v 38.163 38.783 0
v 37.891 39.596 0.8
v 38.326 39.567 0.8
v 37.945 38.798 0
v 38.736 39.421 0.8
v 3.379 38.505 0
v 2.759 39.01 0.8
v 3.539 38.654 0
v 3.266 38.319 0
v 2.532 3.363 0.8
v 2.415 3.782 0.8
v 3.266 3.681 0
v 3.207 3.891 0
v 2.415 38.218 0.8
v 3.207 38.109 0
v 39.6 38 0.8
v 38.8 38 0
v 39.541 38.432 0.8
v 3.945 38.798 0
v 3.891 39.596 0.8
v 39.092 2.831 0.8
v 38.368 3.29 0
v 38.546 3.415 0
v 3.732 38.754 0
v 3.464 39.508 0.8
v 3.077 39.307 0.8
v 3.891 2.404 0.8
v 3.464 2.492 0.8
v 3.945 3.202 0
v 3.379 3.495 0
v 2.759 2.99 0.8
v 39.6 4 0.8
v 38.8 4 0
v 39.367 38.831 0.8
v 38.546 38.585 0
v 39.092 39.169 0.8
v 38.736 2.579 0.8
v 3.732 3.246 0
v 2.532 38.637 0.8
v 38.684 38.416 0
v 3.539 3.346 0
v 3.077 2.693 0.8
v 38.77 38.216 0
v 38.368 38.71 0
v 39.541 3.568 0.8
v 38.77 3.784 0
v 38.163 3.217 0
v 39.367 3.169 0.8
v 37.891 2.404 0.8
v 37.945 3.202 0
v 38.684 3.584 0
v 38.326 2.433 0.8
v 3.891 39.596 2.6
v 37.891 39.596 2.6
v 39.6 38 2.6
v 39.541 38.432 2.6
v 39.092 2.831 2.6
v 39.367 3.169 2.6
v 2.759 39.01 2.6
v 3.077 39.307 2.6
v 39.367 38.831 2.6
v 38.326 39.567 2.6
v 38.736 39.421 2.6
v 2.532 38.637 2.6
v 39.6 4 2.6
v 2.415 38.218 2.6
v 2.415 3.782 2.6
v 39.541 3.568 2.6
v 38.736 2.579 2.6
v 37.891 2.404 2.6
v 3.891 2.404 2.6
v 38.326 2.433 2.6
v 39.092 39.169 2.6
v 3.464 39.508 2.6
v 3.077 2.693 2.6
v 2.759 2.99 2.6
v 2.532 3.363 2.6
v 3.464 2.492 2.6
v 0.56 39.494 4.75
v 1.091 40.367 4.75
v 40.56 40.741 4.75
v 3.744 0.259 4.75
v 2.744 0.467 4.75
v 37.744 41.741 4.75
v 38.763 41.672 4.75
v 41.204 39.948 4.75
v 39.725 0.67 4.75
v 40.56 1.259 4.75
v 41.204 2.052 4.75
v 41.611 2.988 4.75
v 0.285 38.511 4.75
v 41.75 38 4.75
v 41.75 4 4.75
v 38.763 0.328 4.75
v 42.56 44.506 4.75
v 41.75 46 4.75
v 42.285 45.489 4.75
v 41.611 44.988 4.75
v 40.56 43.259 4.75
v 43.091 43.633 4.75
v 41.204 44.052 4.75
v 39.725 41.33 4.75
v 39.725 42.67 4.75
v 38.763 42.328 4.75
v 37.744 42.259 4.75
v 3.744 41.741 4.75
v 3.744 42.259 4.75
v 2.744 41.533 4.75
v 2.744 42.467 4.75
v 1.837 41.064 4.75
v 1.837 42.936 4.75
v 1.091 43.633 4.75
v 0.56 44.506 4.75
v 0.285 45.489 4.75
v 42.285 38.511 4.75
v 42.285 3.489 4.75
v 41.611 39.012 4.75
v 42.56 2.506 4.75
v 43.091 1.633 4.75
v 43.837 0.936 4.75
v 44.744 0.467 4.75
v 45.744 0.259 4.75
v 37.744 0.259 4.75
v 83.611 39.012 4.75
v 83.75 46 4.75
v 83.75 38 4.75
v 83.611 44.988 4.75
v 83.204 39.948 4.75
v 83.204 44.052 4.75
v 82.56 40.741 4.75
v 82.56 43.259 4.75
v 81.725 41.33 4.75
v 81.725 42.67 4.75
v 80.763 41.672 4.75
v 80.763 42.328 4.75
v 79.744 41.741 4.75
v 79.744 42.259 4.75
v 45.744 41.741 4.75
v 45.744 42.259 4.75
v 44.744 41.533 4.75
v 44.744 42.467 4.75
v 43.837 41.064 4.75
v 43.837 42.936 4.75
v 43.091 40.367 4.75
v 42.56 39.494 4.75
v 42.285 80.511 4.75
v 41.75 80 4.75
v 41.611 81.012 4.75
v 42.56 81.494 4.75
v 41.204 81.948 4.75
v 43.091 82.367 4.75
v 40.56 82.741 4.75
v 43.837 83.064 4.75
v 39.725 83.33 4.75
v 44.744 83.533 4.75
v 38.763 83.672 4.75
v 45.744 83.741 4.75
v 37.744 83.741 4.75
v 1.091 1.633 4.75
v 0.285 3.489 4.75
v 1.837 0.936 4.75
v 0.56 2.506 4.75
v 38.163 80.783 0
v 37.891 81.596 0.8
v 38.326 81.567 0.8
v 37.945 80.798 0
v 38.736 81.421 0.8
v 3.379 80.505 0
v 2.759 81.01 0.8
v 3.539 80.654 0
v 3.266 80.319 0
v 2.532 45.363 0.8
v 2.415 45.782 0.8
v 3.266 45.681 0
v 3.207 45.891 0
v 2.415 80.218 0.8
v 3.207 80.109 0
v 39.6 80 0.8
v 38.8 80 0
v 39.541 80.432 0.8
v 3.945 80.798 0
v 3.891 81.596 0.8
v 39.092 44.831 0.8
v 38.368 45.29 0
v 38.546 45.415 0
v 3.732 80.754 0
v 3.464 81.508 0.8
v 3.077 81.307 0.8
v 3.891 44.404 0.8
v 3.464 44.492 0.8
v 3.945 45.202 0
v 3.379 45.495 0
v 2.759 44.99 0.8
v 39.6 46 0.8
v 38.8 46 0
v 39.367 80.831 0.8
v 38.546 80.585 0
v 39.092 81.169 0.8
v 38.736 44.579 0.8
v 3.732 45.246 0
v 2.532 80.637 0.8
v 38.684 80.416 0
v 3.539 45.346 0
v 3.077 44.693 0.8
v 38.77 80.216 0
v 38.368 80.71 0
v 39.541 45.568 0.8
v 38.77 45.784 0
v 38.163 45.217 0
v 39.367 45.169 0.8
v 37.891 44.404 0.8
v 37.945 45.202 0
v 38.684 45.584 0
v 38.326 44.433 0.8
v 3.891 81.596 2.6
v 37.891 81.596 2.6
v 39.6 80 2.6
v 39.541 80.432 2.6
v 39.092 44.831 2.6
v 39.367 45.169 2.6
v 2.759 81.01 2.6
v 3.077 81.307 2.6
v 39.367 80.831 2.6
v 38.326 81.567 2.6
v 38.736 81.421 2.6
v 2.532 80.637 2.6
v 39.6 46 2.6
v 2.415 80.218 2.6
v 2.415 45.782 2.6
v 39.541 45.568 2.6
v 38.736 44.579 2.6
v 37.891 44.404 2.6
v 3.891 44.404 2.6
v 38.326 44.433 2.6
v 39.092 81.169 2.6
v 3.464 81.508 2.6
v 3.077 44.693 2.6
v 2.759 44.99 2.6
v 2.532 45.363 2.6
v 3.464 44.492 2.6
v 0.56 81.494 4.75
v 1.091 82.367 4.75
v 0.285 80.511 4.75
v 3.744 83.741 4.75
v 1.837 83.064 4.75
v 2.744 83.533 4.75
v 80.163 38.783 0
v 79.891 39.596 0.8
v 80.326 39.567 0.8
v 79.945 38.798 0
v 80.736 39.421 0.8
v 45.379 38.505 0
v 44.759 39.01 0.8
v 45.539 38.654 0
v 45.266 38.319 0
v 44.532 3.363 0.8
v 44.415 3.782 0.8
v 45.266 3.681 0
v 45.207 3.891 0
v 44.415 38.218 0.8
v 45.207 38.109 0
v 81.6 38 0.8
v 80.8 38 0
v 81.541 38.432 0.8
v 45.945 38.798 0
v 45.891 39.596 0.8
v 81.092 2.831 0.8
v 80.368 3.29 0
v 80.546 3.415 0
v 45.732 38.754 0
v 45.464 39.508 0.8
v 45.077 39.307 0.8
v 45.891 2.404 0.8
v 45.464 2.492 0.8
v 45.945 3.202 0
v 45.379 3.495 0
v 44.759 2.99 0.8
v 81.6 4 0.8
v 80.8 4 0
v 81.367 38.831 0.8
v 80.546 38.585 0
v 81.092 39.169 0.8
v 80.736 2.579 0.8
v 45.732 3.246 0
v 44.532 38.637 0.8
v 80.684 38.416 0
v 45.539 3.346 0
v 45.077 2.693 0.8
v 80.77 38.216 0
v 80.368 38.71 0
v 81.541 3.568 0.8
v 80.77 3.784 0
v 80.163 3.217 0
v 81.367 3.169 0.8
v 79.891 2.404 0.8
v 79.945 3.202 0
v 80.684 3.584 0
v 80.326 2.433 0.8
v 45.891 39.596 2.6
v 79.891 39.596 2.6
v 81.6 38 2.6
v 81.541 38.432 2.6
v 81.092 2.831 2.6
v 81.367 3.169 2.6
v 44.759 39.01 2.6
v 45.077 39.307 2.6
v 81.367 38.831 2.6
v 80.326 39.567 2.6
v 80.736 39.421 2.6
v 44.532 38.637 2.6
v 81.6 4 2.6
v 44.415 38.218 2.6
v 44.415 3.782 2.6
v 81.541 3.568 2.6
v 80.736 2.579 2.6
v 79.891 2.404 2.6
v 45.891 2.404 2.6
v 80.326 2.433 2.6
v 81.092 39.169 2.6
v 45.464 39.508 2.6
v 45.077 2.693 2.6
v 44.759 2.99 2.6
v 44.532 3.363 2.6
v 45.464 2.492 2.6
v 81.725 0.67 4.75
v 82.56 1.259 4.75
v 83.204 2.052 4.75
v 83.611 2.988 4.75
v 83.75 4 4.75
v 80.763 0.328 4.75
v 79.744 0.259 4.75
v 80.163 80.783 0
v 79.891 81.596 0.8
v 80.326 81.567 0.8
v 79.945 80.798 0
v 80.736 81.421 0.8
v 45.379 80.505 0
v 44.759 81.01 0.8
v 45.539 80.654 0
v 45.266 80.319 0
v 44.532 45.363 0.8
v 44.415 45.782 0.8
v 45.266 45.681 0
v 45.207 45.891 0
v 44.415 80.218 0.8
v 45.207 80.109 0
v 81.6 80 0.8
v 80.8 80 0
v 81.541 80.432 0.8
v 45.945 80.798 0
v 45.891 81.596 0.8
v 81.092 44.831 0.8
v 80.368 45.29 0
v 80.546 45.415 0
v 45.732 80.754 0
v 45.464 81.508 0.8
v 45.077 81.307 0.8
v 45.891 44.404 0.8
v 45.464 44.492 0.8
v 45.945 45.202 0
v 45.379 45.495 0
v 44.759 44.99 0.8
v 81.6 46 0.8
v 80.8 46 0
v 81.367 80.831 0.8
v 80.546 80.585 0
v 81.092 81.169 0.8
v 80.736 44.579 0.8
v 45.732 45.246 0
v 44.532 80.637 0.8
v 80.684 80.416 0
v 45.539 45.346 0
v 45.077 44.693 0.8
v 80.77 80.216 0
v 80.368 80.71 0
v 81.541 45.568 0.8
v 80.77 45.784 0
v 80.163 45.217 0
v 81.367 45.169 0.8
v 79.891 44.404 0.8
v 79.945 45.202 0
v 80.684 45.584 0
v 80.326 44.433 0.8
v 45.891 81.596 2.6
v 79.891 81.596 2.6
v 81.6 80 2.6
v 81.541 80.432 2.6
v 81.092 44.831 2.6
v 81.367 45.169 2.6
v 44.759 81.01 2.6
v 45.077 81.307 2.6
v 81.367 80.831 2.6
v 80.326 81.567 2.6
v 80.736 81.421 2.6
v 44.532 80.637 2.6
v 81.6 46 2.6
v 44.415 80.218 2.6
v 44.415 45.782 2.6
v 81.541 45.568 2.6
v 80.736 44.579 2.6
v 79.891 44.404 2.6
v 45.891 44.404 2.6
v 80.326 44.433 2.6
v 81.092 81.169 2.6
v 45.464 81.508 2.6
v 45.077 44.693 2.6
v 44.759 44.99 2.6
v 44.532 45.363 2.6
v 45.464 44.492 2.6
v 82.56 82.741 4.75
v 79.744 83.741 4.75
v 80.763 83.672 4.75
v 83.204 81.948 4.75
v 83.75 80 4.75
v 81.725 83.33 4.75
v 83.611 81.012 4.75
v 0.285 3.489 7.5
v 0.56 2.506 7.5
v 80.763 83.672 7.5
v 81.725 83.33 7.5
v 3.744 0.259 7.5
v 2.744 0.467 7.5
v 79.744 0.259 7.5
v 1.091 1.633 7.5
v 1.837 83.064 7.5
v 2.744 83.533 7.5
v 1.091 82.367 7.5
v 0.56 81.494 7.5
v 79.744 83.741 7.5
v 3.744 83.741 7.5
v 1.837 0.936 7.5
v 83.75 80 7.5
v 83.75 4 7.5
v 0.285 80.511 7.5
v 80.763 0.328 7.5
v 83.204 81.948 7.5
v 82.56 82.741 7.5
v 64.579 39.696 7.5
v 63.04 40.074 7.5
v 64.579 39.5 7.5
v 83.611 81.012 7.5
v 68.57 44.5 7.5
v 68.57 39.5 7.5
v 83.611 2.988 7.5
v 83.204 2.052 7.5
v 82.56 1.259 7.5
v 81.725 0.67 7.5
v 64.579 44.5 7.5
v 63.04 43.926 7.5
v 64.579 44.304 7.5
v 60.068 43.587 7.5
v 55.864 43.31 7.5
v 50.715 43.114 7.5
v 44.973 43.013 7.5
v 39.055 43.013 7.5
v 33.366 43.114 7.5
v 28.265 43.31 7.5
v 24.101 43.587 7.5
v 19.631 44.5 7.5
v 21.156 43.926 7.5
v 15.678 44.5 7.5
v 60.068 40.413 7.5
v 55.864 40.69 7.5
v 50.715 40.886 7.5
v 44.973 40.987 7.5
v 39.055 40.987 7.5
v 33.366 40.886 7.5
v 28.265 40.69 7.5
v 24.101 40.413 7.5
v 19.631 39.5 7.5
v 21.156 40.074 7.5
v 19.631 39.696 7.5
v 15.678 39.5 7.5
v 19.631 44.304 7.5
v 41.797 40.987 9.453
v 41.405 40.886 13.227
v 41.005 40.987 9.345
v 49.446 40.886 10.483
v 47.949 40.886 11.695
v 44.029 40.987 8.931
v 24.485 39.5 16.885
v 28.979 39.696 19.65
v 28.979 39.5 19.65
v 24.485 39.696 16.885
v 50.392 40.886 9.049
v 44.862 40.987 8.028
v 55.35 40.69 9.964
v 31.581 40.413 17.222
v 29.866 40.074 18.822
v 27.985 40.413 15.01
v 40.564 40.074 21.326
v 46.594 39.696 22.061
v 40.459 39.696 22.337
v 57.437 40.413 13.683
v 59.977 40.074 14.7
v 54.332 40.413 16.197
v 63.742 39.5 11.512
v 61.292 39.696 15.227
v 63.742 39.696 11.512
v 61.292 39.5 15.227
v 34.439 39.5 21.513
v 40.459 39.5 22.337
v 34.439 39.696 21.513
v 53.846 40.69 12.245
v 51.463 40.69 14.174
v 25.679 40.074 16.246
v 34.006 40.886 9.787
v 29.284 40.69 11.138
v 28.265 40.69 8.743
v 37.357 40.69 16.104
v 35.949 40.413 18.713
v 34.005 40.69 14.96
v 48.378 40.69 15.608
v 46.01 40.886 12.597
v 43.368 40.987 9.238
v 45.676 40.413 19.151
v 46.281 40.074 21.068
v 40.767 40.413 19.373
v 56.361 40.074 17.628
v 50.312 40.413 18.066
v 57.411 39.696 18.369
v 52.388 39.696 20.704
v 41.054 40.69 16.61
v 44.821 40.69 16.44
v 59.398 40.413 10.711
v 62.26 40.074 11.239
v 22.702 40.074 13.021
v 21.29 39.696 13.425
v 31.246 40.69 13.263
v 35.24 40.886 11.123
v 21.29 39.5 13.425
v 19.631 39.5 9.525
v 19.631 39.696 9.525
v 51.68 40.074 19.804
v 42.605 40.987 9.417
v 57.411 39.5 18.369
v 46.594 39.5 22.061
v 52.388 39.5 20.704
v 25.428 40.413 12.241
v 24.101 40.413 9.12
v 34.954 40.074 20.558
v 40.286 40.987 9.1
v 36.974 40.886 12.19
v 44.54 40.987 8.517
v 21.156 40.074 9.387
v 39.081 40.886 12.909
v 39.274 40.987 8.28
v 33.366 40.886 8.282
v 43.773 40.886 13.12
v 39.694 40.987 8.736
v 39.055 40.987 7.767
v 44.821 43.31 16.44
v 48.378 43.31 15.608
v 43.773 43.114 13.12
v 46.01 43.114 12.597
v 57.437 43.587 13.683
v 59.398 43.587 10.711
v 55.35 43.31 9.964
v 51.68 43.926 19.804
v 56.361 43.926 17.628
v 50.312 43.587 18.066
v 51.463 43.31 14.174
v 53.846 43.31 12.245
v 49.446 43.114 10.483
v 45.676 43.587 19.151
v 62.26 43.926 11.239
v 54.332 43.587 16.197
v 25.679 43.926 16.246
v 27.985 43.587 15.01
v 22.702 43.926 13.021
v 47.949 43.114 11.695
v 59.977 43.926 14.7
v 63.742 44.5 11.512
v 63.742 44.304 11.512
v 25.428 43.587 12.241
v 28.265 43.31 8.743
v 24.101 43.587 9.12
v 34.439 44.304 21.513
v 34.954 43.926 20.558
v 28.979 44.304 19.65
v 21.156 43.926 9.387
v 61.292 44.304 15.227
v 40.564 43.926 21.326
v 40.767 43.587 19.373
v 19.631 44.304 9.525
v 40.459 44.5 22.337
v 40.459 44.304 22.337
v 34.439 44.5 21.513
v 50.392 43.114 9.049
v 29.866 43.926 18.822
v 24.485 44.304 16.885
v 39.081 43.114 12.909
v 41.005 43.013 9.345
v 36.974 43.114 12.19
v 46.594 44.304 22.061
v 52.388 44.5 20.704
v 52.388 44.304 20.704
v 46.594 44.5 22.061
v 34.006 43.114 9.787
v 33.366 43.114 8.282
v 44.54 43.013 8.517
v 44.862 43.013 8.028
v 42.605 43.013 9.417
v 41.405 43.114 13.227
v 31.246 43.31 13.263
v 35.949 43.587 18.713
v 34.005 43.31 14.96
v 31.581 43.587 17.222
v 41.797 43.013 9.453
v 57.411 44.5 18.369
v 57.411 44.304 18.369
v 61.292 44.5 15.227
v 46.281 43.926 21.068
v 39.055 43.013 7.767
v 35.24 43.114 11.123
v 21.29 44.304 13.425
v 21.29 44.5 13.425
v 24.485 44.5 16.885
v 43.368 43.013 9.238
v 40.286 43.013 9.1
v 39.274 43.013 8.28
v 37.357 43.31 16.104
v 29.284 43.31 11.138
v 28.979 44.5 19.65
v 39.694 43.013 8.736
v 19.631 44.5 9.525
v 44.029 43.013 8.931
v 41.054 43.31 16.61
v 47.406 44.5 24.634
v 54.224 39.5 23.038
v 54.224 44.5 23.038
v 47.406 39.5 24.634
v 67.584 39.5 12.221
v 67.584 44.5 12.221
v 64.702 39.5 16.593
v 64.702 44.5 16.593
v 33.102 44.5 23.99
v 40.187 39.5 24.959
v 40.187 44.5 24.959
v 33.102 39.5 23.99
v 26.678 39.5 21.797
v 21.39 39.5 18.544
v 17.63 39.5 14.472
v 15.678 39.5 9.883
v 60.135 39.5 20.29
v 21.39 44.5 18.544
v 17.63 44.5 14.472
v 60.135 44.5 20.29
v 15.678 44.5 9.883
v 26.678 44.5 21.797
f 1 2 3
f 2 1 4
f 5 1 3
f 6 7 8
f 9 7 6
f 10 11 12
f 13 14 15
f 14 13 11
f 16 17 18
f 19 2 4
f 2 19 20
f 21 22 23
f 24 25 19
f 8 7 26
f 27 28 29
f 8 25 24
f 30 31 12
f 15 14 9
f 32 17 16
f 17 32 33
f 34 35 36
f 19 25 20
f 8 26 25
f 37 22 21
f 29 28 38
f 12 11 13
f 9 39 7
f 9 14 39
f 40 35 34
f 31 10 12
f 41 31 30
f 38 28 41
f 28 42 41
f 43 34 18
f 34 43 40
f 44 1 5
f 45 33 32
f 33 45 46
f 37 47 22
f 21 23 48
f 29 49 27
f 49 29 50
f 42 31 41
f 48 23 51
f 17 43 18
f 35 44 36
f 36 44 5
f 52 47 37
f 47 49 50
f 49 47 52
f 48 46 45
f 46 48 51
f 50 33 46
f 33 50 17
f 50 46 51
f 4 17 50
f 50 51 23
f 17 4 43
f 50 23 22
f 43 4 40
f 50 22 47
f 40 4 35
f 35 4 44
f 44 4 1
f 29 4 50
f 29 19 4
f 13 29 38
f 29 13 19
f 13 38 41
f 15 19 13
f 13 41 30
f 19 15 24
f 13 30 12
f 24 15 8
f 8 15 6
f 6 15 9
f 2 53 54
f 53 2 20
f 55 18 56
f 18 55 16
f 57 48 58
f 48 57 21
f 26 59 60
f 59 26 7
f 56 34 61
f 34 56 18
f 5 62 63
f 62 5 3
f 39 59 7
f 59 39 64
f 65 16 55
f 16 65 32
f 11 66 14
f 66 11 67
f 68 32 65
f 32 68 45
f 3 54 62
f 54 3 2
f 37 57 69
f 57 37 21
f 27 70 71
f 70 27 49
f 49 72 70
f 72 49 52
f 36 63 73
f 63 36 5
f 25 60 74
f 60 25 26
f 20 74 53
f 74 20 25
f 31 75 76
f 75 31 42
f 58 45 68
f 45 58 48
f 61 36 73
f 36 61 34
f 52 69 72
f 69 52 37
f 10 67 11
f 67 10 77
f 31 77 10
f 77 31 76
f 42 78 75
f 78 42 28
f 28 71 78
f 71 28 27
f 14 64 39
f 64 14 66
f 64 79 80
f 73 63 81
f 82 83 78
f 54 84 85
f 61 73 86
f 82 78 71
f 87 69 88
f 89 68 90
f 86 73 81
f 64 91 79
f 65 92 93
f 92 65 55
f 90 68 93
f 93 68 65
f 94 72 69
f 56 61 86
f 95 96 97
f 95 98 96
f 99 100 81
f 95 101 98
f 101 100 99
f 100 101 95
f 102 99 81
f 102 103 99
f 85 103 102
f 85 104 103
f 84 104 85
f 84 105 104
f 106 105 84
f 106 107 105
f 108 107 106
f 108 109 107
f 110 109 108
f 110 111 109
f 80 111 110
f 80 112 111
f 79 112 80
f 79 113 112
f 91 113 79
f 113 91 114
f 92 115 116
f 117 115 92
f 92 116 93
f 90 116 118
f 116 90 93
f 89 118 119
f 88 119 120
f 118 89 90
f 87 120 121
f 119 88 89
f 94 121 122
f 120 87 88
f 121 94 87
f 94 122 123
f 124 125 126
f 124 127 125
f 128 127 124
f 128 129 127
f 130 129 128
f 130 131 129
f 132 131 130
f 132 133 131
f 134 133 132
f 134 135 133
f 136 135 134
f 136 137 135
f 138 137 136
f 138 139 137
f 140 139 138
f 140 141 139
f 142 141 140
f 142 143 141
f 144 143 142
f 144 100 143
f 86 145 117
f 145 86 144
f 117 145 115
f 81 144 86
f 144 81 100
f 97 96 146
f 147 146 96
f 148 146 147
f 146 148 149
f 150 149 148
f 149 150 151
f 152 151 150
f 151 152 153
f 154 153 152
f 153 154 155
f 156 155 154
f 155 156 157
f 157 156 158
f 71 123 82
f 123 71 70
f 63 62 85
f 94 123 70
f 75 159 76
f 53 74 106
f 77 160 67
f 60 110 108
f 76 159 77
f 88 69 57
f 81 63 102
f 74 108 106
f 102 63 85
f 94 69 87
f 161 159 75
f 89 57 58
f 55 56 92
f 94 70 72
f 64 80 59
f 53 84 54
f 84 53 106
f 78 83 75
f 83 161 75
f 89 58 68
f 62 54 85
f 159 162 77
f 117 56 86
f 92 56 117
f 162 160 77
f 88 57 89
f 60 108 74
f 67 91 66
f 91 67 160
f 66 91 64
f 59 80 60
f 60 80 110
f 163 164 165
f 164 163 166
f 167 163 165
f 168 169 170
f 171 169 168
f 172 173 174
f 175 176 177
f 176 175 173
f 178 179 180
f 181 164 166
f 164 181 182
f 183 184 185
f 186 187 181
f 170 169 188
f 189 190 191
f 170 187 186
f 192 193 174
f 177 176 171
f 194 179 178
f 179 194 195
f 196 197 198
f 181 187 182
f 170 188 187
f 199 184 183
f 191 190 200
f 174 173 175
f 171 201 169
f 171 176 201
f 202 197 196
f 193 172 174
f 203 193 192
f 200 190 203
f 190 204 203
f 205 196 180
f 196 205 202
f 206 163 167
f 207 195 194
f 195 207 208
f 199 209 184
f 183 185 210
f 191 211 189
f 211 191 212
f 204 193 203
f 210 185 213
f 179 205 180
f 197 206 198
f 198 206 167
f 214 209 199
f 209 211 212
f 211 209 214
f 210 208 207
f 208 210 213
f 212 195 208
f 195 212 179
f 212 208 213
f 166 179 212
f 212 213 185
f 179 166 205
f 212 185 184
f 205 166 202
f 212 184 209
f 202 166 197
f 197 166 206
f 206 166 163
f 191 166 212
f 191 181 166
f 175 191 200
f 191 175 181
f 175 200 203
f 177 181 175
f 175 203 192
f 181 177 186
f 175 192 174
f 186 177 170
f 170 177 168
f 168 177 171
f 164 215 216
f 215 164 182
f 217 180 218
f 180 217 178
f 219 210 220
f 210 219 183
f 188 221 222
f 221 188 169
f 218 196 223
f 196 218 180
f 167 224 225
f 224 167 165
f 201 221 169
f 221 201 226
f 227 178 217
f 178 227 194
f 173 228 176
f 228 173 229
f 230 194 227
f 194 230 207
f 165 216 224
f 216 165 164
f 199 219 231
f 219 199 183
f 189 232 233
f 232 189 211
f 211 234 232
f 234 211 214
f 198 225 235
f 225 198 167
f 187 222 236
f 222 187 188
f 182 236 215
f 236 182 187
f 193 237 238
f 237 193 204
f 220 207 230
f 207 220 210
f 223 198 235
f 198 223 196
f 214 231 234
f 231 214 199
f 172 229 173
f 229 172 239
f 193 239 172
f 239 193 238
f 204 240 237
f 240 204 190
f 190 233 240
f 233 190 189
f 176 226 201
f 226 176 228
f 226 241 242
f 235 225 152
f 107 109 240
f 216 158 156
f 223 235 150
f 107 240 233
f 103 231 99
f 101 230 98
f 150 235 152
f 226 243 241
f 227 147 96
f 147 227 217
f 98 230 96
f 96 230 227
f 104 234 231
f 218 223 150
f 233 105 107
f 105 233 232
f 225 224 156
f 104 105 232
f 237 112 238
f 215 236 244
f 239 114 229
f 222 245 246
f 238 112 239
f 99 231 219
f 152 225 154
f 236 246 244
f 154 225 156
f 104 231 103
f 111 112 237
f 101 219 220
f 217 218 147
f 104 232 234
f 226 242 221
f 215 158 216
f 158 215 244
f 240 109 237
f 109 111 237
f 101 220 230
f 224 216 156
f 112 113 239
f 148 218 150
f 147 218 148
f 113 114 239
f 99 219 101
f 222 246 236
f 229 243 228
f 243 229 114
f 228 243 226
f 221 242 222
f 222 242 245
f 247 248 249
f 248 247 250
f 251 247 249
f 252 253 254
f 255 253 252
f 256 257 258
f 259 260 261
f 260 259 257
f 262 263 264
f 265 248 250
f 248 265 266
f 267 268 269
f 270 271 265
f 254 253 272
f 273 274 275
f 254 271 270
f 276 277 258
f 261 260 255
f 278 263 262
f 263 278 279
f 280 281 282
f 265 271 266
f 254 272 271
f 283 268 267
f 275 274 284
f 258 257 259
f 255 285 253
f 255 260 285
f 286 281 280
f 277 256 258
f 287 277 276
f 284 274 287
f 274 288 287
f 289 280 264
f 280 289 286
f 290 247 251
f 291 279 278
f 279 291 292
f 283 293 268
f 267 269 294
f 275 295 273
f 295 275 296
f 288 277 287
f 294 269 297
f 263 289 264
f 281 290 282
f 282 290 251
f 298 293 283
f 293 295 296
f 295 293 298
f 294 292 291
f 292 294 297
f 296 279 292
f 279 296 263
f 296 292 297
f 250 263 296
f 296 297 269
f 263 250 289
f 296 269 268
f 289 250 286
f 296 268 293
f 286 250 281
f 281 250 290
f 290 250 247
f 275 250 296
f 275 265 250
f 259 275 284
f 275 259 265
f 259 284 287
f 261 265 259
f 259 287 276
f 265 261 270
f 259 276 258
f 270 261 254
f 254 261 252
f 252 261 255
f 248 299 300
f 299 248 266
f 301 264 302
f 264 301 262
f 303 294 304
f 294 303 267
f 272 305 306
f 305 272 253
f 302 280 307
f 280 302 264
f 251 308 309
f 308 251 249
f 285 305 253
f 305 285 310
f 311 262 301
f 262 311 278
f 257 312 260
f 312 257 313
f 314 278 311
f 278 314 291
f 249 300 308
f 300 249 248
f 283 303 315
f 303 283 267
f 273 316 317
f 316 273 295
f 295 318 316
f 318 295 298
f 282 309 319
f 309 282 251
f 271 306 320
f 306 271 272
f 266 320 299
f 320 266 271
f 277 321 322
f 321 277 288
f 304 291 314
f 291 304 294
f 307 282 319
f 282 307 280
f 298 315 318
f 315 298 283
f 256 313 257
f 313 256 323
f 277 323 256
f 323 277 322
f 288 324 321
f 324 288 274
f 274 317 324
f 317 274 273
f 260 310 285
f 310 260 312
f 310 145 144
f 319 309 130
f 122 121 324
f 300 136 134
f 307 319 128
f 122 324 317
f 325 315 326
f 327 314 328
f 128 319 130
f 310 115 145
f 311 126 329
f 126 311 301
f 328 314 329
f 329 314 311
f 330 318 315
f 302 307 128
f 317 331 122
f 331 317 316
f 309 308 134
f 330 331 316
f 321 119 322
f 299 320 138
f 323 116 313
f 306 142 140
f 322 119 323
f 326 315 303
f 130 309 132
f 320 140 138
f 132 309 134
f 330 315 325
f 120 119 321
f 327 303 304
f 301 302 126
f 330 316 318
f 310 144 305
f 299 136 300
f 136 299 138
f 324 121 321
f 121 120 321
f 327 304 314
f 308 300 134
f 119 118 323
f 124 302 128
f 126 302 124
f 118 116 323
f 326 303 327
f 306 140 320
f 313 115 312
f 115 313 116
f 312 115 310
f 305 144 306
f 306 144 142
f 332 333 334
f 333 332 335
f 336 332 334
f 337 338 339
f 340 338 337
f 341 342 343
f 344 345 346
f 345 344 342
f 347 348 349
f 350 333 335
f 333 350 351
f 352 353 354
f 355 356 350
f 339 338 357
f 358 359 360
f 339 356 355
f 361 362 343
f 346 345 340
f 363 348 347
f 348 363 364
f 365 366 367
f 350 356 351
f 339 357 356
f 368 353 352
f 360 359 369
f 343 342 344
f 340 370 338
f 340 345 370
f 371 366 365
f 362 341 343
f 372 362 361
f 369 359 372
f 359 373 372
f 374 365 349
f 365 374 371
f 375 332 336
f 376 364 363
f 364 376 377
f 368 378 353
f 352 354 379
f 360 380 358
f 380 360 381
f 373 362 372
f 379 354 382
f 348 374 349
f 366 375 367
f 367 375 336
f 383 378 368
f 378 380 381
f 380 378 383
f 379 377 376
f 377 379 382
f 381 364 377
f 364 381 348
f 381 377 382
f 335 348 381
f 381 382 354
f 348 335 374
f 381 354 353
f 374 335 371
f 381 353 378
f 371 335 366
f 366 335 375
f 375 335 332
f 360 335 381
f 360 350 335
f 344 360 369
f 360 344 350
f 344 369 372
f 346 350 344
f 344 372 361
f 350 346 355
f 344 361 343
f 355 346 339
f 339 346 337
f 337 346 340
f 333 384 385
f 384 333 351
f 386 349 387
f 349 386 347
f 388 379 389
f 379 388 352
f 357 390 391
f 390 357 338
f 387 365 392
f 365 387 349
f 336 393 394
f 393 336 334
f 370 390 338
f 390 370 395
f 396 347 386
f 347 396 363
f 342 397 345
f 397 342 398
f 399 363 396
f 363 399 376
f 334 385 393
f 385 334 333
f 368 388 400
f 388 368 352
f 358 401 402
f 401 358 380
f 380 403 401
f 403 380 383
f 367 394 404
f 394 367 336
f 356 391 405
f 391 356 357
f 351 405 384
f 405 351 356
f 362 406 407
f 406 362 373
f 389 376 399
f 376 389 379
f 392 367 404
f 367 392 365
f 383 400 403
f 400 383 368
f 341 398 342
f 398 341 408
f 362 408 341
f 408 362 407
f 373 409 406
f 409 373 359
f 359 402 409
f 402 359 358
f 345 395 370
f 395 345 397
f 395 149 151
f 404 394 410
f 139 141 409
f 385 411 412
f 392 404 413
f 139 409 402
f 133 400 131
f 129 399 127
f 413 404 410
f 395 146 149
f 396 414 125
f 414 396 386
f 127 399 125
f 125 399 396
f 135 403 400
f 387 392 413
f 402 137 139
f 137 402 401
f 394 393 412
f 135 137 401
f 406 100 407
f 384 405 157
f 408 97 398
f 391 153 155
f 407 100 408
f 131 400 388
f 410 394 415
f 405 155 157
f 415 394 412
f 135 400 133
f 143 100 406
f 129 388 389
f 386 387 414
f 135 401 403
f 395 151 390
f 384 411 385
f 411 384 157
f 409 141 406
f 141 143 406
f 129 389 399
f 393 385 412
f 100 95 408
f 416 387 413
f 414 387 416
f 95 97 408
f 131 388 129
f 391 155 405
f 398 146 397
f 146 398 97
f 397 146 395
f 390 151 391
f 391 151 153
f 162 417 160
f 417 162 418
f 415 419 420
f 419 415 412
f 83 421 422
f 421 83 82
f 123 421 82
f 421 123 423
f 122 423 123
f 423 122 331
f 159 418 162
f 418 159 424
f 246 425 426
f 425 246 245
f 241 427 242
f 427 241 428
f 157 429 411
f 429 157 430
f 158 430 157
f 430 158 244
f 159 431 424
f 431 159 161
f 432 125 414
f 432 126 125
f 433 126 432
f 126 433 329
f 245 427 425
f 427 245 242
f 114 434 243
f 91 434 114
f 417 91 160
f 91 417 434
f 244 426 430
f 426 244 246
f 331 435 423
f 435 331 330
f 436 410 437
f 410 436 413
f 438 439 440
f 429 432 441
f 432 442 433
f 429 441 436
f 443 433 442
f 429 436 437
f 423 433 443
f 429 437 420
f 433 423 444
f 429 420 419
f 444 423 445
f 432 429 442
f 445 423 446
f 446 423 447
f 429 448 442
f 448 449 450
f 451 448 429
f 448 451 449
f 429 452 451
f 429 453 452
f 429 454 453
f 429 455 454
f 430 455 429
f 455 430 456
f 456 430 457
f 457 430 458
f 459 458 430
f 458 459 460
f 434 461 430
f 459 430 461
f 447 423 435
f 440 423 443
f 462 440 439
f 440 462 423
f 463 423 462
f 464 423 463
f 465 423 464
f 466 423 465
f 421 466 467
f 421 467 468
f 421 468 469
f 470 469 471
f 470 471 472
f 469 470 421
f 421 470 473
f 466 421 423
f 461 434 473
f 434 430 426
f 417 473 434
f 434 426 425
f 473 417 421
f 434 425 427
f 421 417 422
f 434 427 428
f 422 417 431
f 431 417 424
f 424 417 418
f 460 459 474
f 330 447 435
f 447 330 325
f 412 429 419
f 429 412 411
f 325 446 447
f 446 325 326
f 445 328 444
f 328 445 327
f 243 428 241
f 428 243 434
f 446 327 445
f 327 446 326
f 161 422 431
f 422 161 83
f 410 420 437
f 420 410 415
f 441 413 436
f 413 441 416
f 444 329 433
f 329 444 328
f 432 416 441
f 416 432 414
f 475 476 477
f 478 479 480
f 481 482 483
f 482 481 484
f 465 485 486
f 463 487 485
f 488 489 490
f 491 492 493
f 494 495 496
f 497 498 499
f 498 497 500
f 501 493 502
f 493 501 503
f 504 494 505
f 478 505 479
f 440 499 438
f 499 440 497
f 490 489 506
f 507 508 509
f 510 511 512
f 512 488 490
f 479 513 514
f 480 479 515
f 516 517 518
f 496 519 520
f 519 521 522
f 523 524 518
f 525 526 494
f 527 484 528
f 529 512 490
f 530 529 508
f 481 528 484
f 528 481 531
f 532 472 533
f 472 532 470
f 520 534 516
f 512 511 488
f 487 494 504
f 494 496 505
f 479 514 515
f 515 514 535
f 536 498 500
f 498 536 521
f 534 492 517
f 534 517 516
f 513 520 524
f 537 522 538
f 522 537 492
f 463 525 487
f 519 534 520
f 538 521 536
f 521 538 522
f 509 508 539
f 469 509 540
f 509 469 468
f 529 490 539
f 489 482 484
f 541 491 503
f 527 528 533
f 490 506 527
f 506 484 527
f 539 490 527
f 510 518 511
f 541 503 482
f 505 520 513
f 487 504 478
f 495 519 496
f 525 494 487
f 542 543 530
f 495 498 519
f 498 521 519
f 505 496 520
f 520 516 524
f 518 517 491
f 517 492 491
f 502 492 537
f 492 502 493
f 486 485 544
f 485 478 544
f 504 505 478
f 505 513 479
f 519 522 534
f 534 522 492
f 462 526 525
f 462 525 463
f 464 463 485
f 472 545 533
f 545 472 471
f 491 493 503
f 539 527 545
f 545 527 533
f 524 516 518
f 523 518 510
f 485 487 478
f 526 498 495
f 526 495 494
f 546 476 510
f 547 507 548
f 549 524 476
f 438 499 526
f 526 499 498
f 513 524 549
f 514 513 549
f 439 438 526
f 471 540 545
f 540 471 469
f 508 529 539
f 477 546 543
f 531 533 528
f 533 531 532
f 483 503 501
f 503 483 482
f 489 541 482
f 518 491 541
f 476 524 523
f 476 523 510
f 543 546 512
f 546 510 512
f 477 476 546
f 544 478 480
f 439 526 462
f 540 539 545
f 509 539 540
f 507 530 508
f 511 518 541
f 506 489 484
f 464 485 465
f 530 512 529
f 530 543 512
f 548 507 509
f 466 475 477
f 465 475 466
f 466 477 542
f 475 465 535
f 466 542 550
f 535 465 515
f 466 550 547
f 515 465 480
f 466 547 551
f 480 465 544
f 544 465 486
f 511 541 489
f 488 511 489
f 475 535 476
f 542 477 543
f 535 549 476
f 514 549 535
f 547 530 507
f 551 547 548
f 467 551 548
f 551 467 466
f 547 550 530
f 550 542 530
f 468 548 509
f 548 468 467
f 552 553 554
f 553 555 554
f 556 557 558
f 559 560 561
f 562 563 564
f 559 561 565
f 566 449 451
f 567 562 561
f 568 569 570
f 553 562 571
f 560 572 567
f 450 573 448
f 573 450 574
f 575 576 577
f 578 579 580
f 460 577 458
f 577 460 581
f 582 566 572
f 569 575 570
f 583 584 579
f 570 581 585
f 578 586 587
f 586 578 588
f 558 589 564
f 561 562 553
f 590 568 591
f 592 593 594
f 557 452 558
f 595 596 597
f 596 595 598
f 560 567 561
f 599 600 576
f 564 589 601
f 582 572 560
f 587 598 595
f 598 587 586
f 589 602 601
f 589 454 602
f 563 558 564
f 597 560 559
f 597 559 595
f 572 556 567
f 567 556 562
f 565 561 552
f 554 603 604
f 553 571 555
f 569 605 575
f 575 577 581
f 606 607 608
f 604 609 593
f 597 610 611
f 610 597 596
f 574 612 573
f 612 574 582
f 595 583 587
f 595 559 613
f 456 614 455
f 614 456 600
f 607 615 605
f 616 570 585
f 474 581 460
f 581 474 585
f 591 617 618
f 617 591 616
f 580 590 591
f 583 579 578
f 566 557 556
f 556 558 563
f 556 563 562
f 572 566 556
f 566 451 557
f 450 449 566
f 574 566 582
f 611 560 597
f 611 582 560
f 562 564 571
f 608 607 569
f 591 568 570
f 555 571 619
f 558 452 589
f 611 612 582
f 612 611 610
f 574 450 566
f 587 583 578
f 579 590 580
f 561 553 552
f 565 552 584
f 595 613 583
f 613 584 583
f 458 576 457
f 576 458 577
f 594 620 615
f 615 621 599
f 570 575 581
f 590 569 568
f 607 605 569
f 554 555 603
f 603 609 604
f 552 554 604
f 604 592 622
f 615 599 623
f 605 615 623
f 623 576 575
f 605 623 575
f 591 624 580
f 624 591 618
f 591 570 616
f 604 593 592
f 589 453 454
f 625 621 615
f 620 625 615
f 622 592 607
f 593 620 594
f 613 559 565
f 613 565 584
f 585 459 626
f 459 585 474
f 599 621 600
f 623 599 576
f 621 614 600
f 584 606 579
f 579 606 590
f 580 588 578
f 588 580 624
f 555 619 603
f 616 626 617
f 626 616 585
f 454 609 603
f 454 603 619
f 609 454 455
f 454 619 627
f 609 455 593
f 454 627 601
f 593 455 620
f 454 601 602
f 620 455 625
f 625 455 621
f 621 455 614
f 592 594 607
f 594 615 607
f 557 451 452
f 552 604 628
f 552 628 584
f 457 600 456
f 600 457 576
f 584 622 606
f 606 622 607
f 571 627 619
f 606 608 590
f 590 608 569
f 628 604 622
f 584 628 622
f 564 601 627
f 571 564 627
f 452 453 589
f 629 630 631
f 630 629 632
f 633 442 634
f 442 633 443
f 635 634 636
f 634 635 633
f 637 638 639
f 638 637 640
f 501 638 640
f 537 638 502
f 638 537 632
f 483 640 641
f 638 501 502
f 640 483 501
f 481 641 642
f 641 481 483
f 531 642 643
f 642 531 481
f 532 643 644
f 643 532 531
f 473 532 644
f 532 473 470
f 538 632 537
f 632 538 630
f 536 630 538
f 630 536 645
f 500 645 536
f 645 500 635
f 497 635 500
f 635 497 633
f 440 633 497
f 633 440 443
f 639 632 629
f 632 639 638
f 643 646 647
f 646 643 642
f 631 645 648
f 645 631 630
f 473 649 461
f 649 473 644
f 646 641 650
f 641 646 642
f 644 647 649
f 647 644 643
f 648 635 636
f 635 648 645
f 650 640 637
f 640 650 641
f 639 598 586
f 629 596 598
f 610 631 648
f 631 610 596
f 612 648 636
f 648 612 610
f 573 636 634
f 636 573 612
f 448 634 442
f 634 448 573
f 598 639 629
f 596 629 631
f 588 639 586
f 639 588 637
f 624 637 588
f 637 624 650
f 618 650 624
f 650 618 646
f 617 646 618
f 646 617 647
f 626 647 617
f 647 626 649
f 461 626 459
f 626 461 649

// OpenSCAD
// ===== INFORMATION ===== //
/*
 Lids for Gridfinity bins, with handles!
 
 All parametric, so you can easily change the sizes of the handles.
 
 This was modified from https://www.printables.com/model/645622-gridfinity-lids-with-handles ,
 chemistbyday, to avoid needing GridFinity Rebuilt and a development build of OpenSCAD, just
 because those are too painful for me to install on NixOS.
 
 This is licensed under:
 Creative Commons (4.0 International License) Attribution—Noncommercial—Share Alike
*/

// ===== PARAMETERS ===== //

/* [Setup Parameters] */
// angle resolution (16 is a good draft setting, but recommend setting to 2 or 4 before final render)
$fa = 16;
$fs = 0.25;

/* [General Settings] */
// number of bases along x-axis
gridx = 2;  
// number of bases along y-axis   
gridy = 2;  
// base unit
length = 42;
// total lid height (note: thickness of flat portion will be about height - 5)
height = 7.5;

/* [Handle Settings] */
// length of handle as a fraction of total x width - note that I found 0.9 worked nicely for lids 1 grid unit wide and 0.4 was good for lids 5 grid units wide, and this calculation does a pretty good job of making reasonable choices in between
handle_scale = 0.9/sqrt(gridx);
// thickness of handle
handle_thickness = 5;
// height of handle
handle_height = 17.5; // NOTE: for handles that scale a little more gracefully with the x dimension, try handle_height = 12.5 + gridx*1
// radius of the indent circle (before handle is stretched into an ellipse)
indent_radius = 15; // NOTE: if you define the handle height to vary with gridx as suggested above, replace this line with indent_radius = handle_height-2.5
// depth of indent
indent_depth = 1.5;

// ===== IMPLEMENTATION ===== //

// https://files.printables.com/media/prints/417152/pdfs/417152-gridfinity-specification-b1e2cca5-0872-4816-b0ca-5339e5473e13.pdf

module gridfinity_base(
    gridx,
    gridy,
    height,
    stacking_lip=true,
    solid_height=undef
) {
    x_center_offset = (gridx * 42 - 0.5)/2.0 - 3.75;
    y_center_offset = (gridy * 42 - 0.5)/2.0 - 3.75;
    full_width_height = (is_undef(solid_height) ? height*7 : solid_height) - 2.15 - 1.8 - 0.8;
    empty_height = is_undef(solid_height) ? undef : height*7 - solid_height;
    lip_width = 2.6;
    outside_radius = 3.75;
    inside_radius = outside_radius - lip_width;
    lip_inset = outside_radius + 0.25;

    module layer(gridx, gridy, z, height, bottom_radius, top_radius, r) {
        br = is_undef(bottom_radius) ? r : bottom_radius;
        tr = is_undef(top_radius) ? r : top_radius;
        hull()
        for (x = [4.0, gridx*42.0-4.0])
            for (y = [4.0, gridy*42.0-4.0])
                translate([x,y,z]) cylinder(h=height, r1=br, r2=tr);
    }
    module cell_layer(z, height, bottom_radius, top_radius, r) {
        layer(gridx=1, gridy=1, z=z, height=height, bottom_radius=bottom_radius, top_radius=top_radius, r=r);
    }
    module base_layer(z, height, bottom_radius, top_radius, r) {
        layer(gridx=gridx, gridy=gridy, z=z, height=height, bottom_radius=bottom_radius, top_radius=top_radius, r=r);
    }
    module cell_base() {
        cell_layer(z=0.0, height=0.8, bottom_radius=0.8, top_radius=1.6);
        cell_layer(z=0.8, height=1.8, bottom_radius=1.6, top_radius=1.6);
        cell_layer(z=2.6, height=2.15, bottom_radius=1.6, top_radius=3.75);
    }
    module lip_profile() {
        function roundover_at(angle) = let (
            radius = 0.5,
            x = outside_radius - radius,
            y = 3.69 - radius
        ) [ x + radius * sin(angle), y + radius * cos(angle) ];
        polygon(points=[
            [ outside_radius - lip_width  ,   0 ],
            [ outside_radius - 1.9        , 0.7 ],
            [ outside_radius - 1.9        , 0.7 + 1.8 ],
            for (angle = [-45, -30, 0, 30, 45, 60, 90]) roundover_at(angle),
            [ outside_radius              ,   0 ],
            [ outside_radius - lip_width  ,   0 ]
        ]);
    }
    module lip_side(grids) {
        rotate([90,0,0]) linear_extrude(grids*42.0 - 2 * lip_inset) lip_profile();
        rotate_extrude(angle=90) lip_profile();
    }
    module stacking_lip() {
        translate([gridx*42.0 - lip_inset, gridy*42.0 - lip_inset, height*7]) lip_side(gridy);
        translate([lip_inset, lip_inset, height*7]) rotate([0,0,180]) lip_side(gridy);
        translate([gridx*42.0 - lip_inset, lip_inset, height*7]) rotate([0,0,-90]) lip_side(gridx);
        translate([lip_inset, gridy*42 - lip_inset, height*7]) rotate([0,0,90]) lip_side(gridx);
    }

    module solid_part() {
        for (x = [0:gridx-1])
            for (y = [0:gridy-1])
                translate([x*42.0, y*42.0, 0])
                    cell_base();

        base_layer(z=4.75, height=full_width_height, r=outside_radius);

        if (!is_undef(empty_height)) {
            difference() {
                base_layer(z=solid_height, height=empty_height, r=outside_radius);
                base_layer(z=solid_height, height=empty_height+0.1, r=inside_radius);
            }
        }

        if (stacking_lip) {
            stacking_lip();
        }
    }

    difference() {
        solid_part();
        translate([gridx*42/2, gridy*42/2, height*7]) children();
    }

    if (!is_undef(solid_height)) {
        empty_height = height - solid_height;
    }

}

module handle(){
    translate([0,0,height])
    scale([handle_scale*(gridx*length-0.5)/(2*handle_height),1,1])
    translate([0,handle_thickness/2,0])
    rotate([90,0,0])
    
    difference(){
        cylinder(r = handle_height, h = handle_thickness);
        
        union(){
            //translate([0,handle_height/2,handle_thickness])
            translate([0,0,handle_thickness])
                scale([1,1,indent_depth/indent_radius])
                sphere(r=indent_radius);
            
            //translate([0,handle_height/2,0])
                scale([1,1,indent_depth/indent_radius])
                sphere(r=indent_radius);
            
            translate([0,-handle_height,0])
            cube([2*handle_height,2*handle_height,2*handle_height],center=true);
        }
    }
}

module lid(gridx, gridy, height) {
  gridfinity_base(gridx, gridy, height=height/7, stacking_lip=false);
  translate([gridx*42/2, gridy*42/2, 0]) handle();
}

lid(gridx, gridy, height);
